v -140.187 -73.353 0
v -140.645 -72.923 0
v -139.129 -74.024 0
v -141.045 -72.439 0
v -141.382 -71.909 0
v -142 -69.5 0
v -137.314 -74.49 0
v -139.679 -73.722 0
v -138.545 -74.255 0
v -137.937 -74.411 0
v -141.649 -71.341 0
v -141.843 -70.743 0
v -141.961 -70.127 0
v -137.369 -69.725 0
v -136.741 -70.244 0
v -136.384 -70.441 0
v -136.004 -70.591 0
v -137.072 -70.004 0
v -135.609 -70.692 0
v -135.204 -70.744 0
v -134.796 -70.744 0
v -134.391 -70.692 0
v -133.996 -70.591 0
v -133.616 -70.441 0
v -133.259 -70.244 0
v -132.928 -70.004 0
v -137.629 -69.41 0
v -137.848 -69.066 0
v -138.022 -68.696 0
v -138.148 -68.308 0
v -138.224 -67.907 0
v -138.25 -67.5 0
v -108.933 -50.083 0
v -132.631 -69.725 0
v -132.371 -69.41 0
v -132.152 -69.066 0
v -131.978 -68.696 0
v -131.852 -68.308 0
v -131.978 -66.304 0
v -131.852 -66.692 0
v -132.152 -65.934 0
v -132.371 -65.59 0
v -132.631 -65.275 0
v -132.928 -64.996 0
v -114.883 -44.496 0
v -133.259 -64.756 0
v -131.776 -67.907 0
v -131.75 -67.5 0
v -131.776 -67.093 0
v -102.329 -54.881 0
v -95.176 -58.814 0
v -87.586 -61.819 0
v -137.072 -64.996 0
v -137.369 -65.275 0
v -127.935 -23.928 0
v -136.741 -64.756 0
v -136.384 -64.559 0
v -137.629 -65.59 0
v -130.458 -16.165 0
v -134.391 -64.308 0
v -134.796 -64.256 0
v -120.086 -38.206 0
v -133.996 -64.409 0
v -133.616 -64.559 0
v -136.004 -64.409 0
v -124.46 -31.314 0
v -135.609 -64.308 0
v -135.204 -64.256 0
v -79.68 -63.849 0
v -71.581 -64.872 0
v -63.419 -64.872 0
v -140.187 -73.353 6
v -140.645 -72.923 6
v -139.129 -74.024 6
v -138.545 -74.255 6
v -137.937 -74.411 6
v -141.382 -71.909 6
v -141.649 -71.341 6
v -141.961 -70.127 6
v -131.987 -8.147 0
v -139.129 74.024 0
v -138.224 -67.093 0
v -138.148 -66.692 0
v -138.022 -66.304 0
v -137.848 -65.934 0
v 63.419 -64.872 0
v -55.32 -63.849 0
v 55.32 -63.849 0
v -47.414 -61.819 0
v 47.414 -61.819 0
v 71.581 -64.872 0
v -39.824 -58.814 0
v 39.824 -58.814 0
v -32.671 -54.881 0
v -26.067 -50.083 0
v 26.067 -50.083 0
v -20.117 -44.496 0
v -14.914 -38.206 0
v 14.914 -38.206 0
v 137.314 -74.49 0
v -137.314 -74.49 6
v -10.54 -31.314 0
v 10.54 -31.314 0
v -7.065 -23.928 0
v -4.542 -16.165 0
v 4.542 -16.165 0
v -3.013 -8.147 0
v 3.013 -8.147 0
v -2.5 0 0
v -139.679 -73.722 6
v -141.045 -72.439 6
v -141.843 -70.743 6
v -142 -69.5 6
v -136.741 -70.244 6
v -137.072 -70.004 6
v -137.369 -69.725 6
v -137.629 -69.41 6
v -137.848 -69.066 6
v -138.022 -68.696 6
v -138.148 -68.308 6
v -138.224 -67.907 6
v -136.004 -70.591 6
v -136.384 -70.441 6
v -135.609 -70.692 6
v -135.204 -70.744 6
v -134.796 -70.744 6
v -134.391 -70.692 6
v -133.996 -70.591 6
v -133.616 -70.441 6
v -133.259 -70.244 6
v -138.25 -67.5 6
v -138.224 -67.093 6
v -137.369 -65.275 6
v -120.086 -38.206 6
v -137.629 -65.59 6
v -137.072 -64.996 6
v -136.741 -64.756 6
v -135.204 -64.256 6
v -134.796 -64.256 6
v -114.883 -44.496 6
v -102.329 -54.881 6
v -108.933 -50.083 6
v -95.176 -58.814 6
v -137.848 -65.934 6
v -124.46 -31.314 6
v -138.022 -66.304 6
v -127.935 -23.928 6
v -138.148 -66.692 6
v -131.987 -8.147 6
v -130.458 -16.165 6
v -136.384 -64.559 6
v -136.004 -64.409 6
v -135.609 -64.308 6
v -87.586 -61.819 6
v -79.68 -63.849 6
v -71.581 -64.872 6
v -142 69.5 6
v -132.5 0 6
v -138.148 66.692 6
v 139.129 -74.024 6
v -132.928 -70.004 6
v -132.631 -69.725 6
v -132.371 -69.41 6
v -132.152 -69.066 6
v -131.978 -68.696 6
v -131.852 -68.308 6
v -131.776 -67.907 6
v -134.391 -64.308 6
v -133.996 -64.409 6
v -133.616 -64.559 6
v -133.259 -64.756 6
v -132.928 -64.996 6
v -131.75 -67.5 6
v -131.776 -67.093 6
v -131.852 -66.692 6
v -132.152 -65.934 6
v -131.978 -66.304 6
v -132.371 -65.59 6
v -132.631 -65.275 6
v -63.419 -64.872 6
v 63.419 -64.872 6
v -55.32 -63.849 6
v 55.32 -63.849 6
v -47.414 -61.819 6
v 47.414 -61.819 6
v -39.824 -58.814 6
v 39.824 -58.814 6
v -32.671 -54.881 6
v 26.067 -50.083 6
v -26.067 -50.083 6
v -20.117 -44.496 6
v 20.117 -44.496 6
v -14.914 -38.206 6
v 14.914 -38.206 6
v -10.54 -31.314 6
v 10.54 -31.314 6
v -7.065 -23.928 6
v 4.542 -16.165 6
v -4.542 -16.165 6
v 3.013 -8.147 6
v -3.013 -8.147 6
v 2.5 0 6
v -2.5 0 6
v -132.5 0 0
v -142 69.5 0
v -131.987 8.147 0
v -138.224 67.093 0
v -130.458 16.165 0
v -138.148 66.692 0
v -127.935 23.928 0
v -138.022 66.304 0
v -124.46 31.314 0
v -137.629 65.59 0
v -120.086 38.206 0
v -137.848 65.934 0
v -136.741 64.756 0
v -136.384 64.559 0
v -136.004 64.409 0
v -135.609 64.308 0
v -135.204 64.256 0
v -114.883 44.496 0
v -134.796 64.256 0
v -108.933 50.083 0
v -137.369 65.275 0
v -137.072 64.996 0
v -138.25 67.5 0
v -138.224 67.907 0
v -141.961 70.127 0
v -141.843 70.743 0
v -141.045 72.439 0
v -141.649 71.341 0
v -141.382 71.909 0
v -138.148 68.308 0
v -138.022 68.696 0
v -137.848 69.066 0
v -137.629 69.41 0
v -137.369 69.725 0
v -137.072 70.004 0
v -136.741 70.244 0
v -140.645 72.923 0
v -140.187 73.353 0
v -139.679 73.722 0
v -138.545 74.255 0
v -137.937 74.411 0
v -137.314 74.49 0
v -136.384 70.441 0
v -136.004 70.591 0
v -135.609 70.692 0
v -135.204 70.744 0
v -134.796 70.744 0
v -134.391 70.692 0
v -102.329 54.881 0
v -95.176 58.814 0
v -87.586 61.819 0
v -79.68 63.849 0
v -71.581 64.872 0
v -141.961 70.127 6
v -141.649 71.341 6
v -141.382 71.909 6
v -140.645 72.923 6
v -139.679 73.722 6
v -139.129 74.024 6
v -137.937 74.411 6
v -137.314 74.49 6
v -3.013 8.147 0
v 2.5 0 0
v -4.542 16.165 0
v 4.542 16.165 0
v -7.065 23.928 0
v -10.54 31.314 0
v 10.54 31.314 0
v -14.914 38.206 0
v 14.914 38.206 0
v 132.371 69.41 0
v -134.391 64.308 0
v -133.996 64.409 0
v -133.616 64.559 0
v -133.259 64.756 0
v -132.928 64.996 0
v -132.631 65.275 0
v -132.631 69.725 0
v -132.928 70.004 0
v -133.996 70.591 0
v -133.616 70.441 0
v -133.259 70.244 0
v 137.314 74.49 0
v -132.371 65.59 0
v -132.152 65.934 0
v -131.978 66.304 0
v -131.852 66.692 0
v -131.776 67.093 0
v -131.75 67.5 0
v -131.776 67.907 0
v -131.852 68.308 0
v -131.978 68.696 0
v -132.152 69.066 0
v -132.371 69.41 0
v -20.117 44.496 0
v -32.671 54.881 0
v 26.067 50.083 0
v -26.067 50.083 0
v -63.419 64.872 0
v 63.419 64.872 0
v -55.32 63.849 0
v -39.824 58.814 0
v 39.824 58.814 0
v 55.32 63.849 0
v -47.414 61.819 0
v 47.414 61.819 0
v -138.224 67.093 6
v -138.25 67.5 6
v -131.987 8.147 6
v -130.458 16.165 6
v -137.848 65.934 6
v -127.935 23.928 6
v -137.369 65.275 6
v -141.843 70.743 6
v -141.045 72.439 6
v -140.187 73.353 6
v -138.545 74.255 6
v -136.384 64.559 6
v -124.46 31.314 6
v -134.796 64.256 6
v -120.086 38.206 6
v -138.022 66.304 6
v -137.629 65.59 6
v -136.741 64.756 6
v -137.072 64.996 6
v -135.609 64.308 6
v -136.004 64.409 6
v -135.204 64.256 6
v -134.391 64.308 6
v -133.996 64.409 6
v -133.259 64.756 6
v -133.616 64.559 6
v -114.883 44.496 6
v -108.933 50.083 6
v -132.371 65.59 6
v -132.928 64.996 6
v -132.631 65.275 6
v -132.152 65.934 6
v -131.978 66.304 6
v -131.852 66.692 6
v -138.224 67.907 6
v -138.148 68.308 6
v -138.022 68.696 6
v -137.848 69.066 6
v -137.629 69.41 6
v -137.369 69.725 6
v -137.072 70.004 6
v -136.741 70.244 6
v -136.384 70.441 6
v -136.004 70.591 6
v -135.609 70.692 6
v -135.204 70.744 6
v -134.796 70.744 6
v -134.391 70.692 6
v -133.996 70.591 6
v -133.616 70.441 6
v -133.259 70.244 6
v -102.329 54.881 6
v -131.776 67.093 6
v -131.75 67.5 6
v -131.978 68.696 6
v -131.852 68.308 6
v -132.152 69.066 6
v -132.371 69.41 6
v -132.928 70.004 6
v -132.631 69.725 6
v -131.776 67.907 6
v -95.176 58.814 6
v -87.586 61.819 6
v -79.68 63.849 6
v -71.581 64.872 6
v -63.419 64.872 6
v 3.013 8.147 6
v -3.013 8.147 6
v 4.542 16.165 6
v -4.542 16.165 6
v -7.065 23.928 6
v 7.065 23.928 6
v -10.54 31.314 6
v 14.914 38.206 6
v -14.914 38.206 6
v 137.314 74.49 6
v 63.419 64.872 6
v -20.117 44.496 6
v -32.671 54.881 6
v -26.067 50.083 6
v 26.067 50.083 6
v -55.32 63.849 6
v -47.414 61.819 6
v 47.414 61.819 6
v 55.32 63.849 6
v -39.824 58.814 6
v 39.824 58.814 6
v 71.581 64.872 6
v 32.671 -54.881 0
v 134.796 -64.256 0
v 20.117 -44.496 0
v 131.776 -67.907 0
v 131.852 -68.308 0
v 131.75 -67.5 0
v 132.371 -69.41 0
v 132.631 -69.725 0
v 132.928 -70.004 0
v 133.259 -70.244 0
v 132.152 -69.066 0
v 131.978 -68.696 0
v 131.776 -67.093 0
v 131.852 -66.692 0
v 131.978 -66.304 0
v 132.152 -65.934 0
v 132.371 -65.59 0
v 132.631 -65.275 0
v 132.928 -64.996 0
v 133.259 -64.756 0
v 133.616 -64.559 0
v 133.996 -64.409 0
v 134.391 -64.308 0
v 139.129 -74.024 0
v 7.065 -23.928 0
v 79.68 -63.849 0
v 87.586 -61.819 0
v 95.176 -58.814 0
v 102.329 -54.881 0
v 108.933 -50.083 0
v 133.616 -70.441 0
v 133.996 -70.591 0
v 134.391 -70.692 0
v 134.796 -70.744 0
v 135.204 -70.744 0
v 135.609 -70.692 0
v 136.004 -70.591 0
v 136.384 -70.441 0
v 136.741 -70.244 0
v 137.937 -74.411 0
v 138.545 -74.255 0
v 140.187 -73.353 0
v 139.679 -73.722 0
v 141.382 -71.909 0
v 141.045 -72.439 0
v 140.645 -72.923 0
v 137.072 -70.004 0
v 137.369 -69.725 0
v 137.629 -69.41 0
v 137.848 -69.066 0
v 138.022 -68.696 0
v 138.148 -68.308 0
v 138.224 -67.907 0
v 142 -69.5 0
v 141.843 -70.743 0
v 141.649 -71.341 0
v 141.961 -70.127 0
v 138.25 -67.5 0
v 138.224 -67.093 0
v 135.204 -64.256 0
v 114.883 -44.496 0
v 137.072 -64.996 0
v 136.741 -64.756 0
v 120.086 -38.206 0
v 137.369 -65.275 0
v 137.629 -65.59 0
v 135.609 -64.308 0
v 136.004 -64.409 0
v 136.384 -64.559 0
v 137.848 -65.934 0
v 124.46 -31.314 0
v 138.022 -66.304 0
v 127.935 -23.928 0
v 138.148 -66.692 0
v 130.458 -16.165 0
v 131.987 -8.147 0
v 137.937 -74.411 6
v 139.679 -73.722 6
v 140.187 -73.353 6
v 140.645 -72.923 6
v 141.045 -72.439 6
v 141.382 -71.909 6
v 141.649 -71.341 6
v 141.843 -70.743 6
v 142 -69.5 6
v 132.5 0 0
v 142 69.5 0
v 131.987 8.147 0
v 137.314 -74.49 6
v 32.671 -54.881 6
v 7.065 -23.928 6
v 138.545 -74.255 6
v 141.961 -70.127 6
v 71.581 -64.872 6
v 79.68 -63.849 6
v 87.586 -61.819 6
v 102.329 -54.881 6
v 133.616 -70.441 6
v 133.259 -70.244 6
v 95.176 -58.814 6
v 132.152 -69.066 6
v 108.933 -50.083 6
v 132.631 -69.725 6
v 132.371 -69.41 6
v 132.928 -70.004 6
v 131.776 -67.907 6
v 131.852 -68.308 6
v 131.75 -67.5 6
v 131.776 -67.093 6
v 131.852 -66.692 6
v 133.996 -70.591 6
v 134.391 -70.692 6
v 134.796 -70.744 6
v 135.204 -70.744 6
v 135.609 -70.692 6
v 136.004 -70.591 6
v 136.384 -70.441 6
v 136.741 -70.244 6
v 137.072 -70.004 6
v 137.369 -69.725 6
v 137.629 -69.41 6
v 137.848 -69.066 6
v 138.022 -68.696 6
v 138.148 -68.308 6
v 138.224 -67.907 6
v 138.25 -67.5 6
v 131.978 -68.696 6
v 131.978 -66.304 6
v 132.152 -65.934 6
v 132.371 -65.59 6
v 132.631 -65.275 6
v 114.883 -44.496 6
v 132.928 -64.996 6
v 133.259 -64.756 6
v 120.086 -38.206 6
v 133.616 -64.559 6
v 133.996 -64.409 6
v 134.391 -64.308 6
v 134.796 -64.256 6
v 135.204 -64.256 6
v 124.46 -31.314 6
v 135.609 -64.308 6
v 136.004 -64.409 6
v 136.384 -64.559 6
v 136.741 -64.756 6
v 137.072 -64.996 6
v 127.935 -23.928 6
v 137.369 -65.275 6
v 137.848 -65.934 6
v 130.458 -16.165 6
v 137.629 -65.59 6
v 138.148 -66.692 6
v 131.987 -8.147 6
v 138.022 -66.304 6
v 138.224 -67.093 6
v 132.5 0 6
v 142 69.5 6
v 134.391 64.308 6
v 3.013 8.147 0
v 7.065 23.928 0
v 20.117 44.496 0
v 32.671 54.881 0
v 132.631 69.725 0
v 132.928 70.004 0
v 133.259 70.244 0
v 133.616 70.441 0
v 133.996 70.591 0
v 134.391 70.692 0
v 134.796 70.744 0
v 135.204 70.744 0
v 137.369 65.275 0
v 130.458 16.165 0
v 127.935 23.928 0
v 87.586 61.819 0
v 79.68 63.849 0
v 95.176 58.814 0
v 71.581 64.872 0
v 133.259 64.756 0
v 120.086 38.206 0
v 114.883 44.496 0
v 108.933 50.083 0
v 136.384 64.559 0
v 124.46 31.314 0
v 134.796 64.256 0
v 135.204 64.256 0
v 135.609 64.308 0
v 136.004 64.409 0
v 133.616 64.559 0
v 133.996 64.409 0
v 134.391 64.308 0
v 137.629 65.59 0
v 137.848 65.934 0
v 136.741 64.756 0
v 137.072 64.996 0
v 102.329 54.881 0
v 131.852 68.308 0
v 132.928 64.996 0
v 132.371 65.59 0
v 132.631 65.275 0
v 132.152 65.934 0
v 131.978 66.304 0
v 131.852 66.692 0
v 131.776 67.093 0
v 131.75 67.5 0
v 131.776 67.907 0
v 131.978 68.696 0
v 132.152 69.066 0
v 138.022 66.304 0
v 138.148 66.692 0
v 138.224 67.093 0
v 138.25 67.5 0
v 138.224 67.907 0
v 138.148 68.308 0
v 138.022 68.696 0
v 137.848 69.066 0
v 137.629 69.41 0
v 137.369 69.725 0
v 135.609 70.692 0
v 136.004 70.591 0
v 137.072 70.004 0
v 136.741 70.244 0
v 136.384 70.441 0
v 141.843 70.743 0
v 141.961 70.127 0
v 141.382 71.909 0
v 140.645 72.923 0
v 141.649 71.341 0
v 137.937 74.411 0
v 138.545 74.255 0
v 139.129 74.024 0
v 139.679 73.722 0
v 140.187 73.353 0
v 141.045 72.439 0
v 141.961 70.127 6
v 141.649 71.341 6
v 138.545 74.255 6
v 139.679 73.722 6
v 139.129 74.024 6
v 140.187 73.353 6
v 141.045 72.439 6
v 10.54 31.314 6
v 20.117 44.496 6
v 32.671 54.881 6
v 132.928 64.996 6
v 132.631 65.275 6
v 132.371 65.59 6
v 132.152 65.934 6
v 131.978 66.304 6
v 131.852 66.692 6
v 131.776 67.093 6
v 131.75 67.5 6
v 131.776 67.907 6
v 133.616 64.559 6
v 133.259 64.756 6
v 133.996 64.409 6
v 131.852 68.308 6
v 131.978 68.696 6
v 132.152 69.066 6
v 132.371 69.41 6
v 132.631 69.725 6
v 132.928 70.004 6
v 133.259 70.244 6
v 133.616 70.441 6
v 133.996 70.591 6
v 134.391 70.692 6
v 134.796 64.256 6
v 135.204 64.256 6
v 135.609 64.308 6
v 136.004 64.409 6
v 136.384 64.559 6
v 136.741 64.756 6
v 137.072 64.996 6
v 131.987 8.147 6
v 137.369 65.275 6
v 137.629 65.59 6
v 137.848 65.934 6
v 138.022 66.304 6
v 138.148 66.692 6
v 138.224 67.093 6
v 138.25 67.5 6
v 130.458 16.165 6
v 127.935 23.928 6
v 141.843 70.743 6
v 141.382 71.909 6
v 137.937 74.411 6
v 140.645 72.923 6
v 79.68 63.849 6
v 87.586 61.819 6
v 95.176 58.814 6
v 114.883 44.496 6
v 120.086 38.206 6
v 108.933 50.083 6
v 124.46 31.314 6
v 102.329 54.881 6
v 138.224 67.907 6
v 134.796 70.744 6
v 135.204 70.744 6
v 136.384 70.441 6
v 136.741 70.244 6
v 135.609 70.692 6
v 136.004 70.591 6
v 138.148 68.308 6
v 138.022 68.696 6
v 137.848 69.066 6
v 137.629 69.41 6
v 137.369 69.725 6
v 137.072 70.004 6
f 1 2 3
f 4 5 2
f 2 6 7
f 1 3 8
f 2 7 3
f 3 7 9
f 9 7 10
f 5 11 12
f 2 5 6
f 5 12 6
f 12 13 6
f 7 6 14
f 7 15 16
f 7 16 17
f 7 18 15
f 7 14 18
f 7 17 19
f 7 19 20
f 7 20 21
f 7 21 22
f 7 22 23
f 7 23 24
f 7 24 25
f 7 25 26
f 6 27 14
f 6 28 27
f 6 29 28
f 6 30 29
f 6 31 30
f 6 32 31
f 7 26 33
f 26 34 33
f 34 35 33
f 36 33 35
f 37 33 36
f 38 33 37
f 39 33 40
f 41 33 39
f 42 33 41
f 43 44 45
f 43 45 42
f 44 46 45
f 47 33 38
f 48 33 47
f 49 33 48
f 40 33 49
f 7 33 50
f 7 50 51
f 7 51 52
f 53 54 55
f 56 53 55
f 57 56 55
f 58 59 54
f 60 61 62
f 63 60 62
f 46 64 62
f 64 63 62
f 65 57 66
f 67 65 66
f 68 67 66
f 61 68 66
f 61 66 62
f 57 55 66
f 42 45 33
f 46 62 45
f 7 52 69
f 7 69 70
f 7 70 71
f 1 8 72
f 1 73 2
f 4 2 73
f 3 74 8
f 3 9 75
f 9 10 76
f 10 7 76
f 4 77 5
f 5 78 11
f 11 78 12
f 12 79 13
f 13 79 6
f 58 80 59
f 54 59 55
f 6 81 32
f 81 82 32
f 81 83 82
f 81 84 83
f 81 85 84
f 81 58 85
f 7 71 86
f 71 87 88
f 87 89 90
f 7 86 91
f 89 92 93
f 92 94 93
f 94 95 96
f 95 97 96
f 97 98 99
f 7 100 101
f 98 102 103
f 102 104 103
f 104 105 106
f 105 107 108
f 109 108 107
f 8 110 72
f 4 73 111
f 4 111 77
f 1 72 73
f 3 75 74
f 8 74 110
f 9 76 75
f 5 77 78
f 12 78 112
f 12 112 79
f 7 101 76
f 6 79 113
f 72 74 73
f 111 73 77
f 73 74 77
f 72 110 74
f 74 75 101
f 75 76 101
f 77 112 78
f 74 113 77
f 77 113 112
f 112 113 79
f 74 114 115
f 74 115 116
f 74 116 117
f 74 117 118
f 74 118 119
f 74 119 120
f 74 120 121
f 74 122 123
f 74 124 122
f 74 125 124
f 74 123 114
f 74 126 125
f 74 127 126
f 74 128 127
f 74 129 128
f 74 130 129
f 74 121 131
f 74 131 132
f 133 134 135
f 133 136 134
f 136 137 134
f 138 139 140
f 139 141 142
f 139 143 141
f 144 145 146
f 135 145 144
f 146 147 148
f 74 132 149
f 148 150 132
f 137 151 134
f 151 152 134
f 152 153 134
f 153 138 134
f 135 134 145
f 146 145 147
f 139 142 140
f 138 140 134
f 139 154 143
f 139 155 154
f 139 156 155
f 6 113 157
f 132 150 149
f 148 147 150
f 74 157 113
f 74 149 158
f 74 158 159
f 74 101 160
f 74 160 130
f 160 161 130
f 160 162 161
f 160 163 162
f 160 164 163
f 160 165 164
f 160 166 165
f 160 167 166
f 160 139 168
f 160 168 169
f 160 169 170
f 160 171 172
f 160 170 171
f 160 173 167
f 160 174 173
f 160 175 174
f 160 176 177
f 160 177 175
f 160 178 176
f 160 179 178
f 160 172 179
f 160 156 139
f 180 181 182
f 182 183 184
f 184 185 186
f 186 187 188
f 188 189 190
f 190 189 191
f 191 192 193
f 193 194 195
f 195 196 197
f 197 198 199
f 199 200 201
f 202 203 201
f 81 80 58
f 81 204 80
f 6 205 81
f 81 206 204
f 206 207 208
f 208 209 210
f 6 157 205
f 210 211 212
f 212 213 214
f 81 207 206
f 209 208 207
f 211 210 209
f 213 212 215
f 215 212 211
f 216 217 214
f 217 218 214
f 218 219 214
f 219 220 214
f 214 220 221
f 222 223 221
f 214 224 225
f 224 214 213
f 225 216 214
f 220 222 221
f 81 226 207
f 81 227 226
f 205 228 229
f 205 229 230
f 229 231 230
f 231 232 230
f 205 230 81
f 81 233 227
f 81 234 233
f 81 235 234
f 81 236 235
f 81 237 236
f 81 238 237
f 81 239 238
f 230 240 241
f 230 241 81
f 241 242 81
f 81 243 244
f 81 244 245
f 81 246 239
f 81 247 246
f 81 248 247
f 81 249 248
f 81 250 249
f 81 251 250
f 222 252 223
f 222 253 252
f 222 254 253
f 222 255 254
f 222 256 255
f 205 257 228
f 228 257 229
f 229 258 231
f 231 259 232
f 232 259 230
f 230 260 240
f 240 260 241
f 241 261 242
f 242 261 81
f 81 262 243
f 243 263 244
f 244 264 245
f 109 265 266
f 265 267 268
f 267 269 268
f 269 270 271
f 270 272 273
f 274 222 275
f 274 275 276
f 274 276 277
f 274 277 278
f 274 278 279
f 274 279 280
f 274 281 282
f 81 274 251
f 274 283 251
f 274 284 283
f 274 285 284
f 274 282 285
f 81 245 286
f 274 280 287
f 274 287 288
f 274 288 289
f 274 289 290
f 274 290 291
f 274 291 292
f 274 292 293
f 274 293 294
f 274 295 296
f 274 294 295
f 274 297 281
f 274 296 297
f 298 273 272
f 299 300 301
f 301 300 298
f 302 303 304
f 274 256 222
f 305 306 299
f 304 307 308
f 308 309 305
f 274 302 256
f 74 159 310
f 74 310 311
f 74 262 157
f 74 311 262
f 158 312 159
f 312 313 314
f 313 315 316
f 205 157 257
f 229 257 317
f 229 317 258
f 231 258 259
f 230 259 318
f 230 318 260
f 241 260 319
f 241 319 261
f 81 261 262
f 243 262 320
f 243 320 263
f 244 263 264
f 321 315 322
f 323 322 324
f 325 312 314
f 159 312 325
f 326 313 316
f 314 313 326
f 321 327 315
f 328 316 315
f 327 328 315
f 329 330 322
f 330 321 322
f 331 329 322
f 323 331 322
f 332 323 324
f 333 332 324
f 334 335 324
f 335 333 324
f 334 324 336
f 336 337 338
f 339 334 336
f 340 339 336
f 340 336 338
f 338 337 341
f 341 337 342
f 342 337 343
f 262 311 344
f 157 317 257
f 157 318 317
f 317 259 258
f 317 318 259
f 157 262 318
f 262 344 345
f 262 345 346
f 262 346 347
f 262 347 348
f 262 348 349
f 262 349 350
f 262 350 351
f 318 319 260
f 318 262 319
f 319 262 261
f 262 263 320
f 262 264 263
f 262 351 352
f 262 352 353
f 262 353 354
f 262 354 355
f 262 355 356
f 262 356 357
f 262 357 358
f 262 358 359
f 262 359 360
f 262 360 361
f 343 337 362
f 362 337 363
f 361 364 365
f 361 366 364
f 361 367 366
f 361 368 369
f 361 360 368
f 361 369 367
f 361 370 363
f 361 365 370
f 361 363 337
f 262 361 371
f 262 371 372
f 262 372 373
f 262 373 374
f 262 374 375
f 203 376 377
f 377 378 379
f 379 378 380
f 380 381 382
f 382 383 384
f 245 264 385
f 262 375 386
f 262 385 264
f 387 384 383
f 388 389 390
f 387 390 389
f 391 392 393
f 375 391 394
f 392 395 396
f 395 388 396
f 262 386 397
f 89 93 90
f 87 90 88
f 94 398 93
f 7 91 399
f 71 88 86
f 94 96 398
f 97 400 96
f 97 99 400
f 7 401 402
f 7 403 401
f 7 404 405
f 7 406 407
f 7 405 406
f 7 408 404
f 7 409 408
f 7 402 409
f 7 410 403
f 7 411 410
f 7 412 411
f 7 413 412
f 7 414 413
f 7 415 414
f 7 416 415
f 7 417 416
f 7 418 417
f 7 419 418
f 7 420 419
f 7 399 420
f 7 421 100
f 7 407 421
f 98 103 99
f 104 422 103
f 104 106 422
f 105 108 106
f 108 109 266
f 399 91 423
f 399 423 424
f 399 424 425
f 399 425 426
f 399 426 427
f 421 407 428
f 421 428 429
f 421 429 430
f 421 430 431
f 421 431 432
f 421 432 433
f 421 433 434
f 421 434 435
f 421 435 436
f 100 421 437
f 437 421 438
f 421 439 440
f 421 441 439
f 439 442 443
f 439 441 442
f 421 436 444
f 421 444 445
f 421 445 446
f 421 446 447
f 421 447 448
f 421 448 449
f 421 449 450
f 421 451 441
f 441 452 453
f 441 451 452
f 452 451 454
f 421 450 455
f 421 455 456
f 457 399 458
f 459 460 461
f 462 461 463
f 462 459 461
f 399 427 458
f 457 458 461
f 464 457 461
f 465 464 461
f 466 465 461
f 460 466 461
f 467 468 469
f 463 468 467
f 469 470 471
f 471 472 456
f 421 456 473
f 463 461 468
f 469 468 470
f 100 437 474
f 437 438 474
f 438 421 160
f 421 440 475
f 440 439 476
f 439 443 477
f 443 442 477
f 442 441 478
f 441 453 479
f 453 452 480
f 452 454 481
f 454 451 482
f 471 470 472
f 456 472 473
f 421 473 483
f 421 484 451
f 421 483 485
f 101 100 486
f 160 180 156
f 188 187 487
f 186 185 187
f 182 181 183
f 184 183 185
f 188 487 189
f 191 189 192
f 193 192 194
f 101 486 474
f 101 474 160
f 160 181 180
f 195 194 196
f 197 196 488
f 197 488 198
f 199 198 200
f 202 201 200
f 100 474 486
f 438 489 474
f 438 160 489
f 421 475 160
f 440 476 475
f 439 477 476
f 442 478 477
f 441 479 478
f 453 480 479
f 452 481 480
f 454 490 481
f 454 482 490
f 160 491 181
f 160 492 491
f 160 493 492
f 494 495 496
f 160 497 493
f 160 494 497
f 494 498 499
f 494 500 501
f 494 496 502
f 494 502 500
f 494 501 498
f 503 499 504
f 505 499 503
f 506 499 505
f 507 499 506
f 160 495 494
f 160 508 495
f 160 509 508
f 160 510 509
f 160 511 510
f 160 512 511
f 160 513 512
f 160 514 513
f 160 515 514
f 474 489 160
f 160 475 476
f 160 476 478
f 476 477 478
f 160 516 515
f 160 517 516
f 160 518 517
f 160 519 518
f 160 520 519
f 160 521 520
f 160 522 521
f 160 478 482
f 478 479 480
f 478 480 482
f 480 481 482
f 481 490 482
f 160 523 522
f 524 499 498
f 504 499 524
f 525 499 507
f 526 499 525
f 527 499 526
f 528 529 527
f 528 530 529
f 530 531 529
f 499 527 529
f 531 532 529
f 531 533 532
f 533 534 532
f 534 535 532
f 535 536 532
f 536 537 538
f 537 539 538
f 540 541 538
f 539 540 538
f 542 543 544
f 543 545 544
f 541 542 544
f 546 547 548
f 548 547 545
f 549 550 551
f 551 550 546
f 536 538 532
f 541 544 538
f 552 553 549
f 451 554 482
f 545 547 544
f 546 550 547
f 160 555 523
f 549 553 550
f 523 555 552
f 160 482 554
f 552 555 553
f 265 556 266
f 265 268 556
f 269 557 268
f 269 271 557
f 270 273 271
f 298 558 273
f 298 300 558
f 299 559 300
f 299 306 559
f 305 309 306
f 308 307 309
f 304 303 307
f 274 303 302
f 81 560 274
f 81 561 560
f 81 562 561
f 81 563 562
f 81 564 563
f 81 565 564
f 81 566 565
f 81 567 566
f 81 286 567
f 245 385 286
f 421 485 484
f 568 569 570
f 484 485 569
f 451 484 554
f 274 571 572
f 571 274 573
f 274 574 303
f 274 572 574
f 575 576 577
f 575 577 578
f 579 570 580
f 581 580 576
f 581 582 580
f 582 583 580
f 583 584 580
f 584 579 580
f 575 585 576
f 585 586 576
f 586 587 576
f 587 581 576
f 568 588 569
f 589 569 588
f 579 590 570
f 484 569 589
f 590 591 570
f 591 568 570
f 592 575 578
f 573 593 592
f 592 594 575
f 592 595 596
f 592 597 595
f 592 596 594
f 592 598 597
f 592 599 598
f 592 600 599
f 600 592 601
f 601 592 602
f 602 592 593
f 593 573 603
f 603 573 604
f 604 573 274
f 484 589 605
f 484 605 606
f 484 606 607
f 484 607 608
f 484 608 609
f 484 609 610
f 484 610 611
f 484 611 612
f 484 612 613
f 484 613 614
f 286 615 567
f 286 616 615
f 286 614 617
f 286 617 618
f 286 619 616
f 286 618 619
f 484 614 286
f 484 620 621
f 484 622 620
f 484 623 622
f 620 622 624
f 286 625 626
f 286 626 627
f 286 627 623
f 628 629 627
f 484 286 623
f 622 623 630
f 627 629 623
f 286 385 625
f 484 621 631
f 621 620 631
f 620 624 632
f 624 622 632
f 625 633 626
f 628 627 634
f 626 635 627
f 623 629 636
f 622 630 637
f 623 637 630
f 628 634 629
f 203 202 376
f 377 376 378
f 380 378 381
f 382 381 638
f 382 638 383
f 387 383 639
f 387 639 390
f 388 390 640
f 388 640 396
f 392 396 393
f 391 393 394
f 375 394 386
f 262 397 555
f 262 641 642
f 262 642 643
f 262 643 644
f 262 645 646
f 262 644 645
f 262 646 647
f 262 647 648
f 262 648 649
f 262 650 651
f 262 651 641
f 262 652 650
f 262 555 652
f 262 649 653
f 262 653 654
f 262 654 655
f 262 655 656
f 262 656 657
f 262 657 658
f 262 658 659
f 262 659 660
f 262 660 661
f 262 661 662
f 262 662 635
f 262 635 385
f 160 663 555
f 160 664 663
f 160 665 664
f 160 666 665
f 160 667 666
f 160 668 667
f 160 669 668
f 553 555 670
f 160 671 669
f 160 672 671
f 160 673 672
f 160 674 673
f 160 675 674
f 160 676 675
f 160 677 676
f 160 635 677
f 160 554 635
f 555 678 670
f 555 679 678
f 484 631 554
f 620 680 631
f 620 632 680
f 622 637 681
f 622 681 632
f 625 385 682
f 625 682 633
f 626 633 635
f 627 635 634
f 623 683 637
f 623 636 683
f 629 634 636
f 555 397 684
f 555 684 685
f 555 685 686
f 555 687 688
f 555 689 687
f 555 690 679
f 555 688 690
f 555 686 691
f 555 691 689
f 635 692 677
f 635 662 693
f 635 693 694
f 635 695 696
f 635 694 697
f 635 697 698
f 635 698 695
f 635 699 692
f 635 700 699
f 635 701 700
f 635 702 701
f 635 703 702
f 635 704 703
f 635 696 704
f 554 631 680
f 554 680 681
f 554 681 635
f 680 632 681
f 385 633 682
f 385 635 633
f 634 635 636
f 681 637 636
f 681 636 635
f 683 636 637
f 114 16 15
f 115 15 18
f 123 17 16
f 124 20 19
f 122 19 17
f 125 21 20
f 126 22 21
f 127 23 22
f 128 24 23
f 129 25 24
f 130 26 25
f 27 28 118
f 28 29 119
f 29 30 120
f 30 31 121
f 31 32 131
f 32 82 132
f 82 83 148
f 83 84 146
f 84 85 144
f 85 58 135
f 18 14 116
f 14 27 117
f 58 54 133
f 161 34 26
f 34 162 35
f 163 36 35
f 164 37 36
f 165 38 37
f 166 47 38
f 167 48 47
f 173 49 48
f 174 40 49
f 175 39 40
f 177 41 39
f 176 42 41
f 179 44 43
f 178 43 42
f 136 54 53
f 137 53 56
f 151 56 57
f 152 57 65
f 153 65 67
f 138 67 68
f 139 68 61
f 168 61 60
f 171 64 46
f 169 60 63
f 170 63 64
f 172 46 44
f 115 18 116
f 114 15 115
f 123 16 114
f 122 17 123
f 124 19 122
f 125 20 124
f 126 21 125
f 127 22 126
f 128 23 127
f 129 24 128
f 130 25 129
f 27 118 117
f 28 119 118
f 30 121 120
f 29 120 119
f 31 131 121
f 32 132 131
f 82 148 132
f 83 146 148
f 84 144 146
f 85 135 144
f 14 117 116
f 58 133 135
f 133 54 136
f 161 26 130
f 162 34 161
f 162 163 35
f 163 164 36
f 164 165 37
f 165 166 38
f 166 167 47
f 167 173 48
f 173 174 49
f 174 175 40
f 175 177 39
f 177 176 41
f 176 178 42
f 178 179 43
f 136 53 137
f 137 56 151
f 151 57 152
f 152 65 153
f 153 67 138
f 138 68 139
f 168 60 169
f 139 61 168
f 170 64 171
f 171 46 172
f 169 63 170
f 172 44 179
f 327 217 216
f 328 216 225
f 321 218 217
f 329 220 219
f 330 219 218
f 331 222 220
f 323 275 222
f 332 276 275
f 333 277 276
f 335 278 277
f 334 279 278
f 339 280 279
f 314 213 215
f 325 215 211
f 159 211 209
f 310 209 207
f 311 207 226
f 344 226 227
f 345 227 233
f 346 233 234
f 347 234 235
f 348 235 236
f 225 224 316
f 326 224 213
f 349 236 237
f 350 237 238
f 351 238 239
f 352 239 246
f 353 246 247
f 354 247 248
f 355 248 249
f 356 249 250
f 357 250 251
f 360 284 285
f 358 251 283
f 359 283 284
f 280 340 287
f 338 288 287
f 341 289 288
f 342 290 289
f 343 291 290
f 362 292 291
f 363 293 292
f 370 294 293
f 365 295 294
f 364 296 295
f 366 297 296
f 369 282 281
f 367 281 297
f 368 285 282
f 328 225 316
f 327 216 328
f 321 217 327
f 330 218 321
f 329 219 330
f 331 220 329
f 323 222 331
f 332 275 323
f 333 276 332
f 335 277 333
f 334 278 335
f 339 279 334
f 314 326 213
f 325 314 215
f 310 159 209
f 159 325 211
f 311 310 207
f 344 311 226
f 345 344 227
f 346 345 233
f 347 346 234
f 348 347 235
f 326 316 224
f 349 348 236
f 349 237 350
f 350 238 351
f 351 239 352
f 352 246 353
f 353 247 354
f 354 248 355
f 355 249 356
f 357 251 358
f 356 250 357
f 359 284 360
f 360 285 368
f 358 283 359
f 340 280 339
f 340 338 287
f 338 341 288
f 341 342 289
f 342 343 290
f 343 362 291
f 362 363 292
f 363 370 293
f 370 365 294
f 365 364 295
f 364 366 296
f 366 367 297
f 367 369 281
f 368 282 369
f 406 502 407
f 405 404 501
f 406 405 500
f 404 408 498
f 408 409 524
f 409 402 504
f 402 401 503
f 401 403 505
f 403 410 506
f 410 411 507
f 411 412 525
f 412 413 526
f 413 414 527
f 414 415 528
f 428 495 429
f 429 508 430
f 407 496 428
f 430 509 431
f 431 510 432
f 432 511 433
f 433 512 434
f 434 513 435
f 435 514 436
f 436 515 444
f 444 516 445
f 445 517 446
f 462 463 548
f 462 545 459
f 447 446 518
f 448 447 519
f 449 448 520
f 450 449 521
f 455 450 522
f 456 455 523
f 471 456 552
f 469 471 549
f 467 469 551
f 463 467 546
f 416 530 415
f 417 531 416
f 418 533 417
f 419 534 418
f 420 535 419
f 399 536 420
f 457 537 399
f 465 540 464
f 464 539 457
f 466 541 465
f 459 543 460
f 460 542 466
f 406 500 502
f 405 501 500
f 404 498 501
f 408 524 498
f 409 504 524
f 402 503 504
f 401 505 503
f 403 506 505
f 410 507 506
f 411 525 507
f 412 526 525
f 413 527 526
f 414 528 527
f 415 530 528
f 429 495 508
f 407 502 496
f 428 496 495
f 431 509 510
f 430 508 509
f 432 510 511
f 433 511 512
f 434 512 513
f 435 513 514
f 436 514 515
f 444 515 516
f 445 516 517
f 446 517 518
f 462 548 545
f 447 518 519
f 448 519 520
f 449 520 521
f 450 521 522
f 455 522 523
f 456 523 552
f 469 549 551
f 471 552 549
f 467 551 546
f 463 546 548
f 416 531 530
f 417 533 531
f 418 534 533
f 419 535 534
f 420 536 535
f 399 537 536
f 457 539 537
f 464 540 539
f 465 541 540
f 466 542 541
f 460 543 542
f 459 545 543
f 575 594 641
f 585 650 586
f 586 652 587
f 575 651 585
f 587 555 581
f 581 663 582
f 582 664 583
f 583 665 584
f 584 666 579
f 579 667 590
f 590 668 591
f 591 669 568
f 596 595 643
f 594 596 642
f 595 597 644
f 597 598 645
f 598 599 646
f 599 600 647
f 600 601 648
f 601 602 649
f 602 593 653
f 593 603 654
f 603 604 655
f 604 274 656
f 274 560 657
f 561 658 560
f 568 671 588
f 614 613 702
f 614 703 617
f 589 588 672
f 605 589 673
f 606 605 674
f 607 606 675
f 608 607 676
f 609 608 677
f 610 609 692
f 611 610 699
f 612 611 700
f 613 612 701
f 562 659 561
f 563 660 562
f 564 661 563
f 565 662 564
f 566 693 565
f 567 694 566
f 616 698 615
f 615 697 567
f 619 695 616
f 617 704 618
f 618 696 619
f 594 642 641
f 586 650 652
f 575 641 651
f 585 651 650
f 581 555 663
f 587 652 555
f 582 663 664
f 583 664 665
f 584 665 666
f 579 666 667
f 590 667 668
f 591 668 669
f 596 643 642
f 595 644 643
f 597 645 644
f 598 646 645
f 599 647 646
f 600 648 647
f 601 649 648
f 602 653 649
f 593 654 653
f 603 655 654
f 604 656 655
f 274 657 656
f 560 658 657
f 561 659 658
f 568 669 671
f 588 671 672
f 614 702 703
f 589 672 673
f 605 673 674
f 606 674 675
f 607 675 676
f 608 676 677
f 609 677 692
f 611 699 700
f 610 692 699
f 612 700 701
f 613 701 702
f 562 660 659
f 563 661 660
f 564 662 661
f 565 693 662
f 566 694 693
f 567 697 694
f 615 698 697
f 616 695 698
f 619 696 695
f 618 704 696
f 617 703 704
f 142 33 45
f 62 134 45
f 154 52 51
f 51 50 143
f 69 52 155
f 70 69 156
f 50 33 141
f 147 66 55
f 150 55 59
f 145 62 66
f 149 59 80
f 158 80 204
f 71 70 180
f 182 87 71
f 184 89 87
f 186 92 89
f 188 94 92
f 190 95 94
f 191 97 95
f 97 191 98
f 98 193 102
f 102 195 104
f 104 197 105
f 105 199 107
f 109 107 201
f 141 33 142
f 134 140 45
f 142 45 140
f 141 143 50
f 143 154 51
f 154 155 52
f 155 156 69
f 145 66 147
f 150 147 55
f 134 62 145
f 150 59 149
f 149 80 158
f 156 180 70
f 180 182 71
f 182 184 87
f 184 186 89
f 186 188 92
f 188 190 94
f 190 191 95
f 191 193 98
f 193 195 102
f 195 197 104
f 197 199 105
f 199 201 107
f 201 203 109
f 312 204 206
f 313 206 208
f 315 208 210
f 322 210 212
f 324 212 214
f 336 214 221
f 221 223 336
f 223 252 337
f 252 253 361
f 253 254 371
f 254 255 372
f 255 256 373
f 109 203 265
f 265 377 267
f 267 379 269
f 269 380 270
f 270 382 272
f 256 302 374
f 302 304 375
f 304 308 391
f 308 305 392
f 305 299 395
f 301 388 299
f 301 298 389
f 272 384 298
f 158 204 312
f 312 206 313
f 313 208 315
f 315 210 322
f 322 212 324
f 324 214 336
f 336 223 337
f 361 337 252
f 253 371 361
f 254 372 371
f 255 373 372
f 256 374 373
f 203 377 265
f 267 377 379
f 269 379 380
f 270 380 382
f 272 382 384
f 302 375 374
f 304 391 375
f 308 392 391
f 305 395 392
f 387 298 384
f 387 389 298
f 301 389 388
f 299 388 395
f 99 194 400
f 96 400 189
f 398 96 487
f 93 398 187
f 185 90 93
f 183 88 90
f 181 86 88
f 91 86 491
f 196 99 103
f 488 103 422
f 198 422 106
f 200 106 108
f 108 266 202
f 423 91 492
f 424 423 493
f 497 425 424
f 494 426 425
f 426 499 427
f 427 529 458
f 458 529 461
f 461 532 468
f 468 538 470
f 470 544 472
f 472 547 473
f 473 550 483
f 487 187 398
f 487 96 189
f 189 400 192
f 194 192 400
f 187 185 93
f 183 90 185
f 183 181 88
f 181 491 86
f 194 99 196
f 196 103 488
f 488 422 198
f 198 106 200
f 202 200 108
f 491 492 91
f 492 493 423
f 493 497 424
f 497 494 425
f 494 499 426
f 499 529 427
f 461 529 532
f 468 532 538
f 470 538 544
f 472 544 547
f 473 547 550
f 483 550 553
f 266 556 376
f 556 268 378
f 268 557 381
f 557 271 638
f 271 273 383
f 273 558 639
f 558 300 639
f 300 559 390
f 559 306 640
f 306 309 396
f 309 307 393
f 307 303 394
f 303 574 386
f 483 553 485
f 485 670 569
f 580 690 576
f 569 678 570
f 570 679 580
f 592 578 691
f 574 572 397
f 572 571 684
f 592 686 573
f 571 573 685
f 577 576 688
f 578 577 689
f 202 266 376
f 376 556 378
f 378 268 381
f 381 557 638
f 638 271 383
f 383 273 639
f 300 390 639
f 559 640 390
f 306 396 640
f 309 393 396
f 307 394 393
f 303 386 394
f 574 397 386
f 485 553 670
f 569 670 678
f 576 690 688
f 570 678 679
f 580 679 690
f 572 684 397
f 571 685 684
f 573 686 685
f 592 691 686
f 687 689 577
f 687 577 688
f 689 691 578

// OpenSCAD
$fn = 50;

difference() {
	union() {
		hull() {
			translate(v = [-137.0, 69.5, 0]) {
				cylinder(h = 6, r = 5);
			}
			translate(v = [137.0, 69.5, 0]) {
				cylinder(h = 6, r = 5);
			}
			translate(v = [-137.0, -69.5, 0]) {
				cylinder(h = 6, r = 5);
			}
			translate(v = [137.0, -69.5, 0]) {
				cylinder(h = 6, r = 5);
			}
		}
	}
	union() {
		translate(v = [-135.0, -67.5, -100.0]) {
			cylinder(h = 200, r = 3.25);
		}
		translate(v = [-135.0, 67.5, -100.0]) {
			cylinder(h = 200, r = 3.25);
		}
		translate(v = [135.0, -67.5, -100.0]) {
			cylinder(h = 200, r = 3.25);
		}
		translate(v = [135.0, 67.5, -100.0]) {
			cylinder(h = 200, r = 3.25);
		}
		translate(v = [-135.0, -67.5, -100.0]) {
			cylinder(h = 200, r = 1.8);
		}
		translate(v = [-135.0, 67.5, -100.0]) {
			cylinder(h = 200, r = 1.8);
		}
		translate(v = [135.0, -67.5, -100.0]) {
			cylinder(h = 200, r = 1.8);
		}
		translate(v = [135.0, 67.5, -100.0]) {
			cylinder(h = 200, r = 1.8);
		}
		translate(v = [-67.5, 0, 0.0]) {
			cylinder(h = 6, r = 65.0);
		}
		translate(v = [67.5, 0, 0.0]) {
			cylinder(h = 6, r = 65.0);
		}
	}
}
